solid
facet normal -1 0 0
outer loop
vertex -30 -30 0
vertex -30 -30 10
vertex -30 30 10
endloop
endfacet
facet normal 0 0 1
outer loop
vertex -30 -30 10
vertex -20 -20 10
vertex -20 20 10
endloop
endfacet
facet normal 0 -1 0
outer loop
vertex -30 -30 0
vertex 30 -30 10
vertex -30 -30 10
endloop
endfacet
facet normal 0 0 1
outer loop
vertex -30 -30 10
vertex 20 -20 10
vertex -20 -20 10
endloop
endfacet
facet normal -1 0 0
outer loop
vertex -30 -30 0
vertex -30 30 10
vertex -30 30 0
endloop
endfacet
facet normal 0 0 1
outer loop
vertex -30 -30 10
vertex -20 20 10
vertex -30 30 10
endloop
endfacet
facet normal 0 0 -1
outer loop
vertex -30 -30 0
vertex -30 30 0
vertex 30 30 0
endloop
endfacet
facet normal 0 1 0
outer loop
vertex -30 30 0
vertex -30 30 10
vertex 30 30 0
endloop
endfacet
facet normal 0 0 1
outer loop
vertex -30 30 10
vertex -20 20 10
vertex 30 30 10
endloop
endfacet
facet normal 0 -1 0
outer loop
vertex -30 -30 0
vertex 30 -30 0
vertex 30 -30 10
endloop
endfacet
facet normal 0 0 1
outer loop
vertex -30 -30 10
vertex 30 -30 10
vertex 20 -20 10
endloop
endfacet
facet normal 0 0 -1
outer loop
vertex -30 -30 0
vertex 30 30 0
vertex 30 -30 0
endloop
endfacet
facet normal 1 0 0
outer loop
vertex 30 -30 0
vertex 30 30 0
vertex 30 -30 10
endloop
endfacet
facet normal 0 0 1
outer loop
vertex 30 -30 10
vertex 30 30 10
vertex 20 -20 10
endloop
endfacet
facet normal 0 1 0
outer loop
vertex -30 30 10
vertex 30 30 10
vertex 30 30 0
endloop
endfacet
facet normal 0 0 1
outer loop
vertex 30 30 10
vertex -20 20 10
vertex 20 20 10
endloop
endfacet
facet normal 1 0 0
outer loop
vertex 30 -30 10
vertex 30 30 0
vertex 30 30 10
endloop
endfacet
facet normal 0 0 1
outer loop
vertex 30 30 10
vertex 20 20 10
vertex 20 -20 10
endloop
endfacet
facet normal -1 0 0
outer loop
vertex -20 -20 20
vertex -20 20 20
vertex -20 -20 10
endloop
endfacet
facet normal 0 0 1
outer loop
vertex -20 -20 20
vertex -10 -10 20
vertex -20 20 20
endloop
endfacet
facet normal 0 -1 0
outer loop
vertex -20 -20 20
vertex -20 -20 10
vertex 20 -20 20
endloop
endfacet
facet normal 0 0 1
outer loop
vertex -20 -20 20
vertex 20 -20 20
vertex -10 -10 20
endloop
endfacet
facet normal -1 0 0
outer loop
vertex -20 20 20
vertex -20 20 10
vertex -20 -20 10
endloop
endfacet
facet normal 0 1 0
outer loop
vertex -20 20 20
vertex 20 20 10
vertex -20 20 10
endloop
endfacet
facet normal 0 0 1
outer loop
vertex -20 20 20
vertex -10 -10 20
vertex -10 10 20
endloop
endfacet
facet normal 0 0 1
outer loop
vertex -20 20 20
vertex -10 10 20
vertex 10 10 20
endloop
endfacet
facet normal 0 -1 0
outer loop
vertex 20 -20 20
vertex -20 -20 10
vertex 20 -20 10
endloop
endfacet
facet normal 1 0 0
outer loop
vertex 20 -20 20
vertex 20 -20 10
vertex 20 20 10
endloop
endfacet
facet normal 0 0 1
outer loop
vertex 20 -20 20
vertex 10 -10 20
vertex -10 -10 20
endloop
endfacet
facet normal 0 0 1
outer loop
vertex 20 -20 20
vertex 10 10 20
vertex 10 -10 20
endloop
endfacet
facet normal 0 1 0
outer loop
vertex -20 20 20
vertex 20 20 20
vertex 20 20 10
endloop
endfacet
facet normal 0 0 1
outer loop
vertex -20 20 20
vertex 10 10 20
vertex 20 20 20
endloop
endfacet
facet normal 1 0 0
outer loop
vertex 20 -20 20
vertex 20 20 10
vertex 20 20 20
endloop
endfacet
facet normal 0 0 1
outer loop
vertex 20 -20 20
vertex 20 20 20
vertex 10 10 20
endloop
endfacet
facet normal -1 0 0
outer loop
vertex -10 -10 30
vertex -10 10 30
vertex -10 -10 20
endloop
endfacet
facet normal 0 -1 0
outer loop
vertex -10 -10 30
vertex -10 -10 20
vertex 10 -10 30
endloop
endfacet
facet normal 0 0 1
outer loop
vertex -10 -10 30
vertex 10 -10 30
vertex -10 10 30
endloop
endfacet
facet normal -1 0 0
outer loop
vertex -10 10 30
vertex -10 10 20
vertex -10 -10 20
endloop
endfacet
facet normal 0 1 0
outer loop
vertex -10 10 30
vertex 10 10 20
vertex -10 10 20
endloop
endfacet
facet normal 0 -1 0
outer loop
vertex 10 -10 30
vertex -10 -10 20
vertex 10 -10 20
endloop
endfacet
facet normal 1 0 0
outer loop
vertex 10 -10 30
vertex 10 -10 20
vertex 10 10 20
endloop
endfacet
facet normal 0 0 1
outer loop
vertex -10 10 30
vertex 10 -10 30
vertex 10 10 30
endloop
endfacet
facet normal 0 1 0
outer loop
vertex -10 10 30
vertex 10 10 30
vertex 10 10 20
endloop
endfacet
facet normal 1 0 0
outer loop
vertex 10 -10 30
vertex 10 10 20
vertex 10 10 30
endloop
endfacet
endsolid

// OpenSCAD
union() {
    translate([0, 0, 5])
        cube([60, 60, 10], center=true);

    translate([0, 0, 15])
        cube([40, 40, 10], center=true);

    translate([0, 0, 25])
        cube([20, 20, 10], center=true);
}
